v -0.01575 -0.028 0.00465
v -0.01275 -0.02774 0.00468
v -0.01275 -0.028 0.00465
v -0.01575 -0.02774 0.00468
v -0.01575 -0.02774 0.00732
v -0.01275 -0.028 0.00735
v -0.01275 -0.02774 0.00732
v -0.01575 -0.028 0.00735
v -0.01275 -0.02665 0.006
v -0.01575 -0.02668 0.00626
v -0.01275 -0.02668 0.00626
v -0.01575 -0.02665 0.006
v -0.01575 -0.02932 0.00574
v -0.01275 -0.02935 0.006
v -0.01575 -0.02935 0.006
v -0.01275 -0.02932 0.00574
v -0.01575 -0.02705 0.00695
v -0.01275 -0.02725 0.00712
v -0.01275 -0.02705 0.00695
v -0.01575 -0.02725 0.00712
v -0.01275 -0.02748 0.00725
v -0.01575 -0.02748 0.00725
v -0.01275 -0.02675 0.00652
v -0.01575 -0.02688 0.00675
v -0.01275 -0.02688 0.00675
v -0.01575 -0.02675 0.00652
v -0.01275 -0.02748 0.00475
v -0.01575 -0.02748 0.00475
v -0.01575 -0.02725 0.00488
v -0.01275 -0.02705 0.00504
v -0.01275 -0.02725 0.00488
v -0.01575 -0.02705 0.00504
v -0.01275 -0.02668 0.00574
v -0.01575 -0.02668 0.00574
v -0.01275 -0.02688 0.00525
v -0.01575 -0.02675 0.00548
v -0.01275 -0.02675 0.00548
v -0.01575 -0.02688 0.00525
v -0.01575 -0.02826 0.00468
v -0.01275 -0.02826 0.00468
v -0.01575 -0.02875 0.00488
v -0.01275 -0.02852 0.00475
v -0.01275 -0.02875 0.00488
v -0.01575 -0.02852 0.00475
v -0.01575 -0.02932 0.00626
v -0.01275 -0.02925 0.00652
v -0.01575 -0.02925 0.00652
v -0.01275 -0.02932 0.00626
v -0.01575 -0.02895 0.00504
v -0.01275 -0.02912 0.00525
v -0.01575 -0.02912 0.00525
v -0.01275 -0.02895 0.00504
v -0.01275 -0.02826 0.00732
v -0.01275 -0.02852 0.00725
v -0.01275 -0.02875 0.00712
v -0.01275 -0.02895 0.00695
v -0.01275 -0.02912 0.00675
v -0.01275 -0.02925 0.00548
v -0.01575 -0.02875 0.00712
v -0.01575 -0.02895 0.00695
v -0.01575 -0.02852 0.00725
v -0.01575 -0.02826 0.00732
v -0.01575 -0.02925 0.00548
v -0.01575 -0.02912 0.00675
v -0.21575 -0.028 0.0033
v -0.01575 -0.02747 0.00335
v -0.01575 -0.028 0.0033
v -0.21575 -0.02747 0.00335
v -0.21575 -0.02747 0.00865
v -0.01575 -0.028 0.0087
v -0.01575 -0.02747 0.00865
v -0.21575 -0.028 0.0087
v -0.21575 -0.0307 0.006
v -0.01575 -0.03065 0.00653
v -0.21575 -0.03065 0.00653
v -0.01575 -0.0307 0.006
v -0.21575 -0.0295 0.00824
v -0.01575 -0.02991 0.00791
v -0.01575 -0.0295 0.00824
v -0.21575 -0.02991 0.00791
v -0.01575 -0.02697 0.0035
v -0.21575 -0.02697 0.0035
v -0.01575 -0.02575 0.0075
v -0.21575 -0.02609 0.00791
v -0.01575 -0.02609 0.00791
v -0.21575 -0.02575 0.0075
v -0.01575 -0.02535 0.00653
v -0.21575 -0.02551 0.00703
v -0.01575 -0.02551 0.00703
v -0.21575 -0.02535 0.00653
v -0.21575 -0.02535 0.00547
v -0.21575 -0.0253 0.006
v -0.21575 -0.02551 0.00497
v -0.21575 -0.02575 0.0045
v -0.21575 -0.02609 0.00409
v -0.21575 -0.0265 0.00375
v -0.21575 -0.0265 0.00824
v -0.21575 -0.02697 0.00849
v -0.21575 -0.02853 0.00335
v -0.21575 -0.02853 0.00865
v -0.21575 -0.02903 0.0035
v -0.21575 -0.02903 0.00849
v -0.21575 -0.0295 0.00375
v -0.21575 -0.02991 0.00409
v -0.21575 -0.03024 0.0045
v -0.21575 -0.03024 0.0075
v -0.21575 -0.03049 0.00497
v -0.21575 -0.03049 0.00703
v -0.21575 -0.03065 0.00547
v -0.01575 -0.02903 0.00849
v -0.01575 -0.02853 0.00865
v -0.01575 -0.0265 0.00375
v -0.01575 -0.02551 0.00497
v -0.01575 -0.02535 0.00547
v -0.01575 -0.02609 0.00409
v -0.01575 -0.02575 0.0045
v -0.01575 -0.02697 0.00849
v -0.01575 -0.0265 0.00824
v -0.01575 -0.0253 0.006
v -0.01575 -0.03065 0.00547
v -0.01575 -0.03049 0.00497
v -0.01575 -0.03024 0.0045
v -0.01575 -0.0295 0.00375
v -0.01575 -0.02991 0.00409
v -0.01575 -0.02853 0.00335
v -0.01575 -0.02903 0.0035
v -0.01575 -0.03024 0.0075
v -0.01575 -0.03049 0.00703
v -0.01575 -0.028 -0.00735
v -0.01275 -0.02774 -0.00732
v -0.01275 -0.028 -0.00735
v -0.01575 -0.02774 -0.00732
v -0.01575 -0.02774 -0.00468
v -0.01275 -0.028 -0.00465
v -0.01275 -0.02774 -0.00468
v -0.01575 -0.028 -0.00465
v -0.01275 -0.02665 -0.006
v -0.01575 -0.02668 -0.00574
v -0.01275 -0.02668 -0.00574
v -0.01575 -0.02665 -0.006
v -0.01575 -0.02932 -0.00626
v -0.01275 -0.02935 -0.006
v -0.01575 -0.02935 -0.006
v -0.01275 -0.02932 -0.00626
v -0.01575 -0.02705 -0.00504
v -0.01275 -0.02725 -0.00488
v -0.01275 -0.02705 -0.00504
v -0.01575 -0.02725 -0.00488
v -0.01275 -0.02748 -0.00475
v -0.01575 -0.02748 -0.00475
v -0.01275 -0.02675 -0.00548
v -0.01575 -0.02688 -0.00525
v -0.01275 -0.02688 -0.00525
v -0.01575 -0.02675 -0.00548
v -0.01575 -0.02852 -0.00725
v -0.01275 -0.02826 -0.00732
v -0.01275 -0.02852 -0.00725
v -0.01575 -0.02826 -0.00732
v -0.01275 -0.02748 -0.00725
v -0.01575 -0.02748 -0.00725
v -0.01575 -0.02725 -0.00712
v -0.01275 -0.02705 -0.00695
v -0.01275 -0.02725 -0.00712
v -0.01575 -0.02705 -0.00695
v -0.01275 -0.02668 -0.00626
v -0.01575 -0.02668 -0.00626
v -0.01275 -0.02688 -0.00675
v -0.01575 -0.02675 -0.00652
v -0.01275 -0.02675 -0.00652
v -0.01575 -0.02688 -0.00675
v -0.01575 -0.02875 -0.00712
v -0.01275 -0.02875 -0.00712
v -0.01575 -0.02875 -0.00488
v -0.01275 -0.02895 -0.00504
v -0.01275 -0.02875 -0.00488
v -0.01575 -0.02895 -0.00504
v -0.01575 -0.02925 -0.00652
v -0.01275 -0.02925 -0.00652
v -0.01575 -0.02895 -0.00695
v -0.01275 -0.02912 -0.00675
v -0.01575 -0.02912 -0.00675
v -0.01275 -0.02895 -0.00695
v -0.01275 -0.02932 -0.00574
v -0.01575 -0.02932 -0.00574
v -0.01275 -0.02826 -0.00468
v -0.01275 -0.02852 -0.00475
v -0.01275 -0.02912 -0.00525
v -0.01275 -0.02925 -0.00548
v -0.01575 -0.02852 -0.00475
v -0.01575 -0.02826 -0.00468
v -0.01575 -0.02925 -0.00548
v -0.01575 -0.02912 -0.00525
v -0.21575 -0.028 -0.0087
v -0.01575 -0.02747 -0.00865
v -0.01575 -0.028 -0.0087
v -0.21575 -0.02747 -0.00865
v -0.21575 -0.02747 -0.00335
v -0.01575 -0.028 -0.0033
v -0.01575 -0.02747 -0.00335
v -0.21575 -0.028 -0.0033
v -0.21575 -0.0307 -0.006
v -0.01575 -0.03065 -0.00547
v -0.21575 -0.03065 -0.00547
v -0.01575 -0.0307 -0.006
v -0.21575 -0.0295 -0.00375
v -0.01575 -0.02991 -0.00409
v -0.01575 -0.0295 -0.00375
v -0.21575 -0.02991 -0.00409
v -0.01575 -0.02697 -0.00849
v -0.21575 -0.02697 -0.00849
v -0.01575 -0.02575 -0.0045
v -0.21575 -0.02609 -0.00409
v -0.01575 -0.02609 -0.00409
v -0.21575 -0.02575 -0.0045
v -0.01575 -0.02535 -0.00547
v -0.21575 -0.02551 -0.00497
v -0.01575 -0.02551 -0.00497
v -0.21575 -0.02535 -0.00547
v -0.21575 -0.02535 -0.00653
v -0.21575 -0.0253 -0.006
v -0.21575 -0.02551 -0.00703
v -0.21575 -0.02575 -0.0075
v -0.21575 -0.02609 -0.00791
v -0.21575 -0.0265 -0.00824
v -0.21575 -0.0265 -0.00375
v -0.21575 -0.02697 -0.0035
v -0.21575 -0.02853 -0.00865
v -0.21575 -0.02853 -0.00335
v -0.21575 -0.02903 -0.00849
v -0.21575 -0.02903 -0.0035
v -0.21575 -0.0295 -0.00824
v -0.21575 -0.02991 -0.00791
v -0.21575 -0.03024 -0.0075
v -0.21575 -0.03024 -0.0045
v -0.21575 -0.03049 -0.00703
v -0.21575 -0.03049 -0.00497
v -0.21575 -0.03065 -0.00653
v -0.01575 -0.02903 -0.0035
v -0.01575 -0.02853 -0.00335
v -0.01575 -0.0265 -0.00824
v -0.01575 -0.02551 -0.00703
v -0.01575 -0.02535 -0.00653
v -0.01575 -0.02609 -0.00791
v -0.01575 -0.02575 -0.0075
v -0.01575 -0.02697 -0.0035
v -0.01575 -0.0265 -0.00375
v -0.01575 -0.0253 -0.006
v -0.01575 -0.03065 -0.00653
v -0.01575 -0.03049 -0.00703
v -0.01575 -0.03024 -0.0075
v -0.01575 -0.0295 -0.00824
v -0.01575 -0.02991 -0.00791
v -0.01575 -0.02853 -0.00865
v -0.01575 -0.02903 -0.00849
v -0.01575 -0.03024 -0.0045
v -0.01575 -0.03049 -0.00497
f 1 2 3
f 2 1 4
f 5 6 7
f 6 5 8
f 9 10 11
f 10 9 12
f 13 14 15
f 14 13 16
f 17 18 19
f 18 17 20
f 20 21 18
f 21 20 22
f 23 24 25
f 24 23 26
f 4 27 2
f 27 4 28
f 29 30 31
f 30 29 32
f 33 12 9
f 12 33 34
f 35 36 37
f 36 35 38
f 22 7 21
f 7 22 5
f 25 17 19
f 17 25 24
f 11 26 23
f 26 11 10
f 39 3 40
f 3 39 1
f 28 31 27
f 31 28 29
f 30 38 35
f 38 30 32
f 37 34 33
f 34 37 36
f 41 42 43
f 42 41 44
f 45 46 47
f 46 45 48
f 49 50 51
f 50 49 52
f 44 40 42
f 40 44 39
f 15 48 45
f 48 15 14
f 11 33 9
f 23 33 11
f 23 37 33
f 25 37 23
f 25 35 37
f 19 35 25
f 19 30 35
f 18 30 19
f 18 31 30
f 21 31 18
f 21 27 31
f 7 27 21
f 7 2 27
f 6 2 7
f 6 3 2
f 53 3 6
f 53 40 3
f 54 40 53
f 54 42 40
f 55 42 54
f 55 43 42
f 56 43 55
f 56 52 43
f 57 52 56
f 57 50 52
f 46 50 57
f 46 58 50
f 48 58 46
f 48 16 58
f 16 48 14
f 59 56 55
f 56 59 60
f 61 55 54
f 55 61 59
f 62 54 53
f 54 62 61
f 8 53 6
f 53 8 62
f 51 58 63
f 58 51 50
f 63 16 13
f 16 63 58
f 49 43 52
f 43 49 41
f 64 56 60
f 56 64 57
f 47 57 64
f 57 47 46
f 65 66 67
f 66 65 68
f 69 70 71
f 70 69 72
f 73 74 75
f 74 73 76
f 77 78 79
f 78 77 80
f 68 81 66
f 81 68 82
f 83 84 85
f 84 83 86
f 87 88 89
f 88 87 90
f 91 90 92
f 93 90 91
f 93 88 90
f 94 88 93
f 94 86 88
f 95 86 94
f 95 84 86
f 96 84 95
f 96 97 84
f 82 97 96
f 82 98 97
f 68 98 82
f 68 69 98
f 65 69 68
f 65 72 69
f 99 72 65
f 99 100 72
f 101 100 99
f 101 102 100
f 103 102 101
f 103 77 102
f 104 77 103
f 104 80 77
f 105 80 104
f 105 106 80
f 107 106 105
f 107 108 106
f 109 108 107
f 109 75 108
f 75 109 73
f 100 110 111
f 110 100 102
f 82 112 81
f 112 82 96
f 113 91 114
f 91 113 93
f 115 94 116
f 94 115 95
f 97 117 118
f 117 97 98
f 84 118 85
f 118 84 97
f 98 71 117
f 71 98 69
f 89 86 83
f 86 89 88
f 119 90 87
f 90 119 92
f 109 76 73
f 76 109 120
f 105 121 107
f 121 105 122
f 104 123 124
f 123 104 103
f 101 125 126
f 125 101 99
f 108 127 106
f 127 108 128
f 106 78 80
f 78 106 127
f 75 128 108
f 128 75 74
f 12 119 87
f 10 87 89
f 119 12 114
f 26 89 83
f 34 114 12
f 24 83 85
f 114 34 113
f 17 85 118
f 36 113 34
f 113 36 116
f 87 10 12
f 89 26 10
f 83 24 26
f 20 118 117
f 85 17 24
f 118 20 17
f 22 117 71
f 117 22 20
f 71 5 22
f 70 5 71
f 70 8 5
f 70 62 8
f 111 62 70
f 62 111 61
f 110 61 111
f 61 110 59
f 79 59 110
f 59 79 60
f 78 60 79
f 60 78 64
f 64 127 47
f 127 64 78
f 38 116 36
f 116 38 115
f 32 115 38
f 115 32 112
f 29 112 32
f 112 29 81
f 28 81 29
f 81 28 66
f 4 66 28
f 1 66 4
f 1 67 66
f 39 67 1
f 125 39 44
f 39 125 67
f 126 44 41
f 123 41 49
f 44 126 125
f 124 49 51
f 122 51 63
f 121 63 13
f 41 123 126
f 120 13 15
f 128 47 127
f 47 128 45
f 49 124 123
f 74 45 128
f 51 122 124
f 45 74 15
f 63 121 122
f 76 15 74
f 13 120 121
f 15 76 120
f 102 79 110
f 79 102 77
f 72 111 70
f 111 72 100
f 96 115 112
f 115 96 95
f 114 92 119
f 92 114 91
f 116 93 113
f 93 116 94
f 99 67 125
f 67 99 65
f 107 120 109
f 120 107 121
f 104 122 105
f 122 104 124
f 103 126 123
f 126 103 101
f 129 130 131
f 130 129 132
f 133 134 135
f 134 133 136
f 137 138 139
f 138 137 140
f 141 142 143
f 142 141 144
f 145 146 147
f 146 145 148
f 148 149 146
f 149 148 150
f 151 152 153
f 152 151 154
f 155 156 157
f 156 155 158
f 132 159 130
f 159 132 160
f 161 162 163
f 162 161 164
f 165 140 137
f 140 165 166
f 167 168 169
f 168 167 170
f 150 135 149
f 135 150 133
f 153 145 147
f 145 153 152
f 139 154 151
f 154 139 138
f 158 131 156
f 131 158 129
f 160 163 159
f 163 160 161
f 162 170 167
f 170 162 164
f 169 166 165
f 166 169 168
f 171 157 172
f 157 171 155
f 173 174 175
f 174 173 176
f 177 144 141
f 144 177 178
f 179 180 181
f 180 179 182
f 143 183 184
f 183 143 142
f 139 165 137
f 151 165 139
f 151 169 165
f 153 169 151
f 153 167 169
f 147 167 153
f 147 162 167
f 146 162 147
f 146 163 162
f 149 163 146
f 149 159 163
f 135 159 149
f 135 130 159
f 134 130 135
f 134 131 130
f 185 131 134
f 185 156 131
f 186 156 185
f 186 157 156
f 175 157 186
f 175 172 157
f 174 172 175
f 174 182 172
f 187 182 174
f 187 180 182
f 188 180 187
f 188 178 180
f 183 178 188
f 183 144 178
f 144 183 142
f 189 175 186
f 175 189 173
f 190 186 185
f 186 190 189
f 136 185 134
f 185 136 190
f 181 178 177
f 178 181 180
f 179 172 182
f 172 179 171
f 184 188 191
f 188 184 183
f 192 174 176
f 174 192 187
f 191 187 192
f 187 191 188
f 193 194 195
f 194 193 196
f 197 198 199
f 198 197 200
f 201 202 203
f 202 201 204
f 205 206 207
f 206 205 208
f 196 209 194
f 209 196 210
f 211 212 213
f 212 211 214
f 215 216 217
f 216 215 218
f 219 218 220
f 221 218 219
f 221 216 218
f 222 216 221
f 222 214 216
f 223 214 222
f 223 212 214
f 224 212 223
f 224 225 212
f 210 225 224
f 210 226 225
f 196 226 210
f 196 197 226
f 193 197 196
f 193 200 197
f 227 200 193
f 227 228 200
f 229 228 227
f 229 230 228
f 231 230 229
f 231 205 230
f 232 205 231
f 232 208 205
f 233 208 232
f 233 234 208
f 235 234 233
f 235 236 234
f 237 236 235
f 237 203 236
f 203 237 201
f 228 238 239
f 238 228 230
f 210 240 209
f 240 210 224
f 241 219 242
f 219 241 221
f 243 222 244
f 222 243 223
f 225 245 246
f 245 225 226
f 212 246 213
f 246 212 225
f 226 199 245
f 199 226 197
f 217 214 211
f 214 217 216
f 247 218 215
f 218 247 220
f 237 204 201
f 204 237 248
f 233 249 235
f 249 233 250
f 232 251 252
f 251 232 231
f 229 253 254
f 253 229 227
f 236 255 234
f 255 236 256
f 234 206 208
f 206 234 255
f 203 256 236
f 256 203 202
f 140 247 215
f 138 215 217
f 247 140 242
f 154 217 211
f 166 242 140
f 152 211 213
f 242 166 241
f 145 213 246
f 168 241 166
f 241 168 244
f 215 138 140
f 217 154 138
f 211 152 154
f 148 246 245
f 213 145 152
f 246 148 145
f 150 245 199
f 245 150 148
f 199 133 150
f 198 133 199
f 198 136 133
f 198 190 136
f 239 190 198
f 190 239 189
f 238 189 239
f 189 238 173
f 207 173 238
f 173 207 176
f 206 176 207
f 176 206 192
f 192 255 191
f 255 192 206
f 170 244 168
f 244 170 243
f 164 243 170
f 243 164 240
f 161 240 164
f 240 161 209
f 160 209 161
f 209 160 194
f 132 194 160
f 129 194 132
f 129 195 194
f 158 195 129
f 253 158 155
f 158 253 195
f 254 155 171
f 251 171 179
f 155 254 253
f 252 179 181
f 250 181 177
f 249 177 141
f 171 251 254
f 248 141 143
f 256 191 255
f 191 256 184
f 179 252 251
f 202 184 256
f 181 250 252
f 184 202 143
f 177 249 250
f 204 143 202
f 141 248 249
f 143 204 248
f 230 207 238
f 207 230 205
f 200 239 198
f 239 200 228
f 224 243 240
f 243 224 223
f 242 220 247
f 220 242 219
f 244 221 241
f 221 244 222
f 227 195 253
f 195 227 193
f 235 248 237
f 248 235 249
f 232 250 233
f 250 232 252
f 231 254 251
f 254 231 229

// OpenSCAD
n = 128;
m = 32;
clearance = 0.0001;
delta = 0.000001;

HoleInR = 0.00125 + clearance;
HoleOutR = 2 * HoleInR;
HoleInW = 0.003;
HoleOutW = 0.2;


x3 = -0.01425;
y3 = -0.028;
z3 = 0.006;
translate([x3, y3, z3]){
    rotate(a = 90, v = [0, 1, 0]) {
        cylinder(h = HoleInW, r1 = HoleInR, r2 = HoleInR, center     = true, $fn = m);
    }
}

translate([x3 - 0.5 * (HoleInW + HoleOutW) + delta, y3, z3]){
    rotate(a = 90, v = [0, 1, 0]) {
        cylinder(h = HoleOutW, r1 = HoleOutR, r2 = HoleOutR, center = true, $fn = m);   
    }  
}

x4 = -0.01425;
y4 = -0.028;
z4 = -0.006;
translate([x4, y4, z4]){
    rotate(a = 90, v = [0, 1, 0]) {
        cylinder(h = HoleInW, r1 = HoleInR, r2 = HoleInR, center     = true, $fn = m);
    }
}

translate([x4 - 0.5 * (HoleInW + HoleOutW) + delta, y4, z4]){
    rotate(a = 90, v = [0, 1, 0]) {
        cylinder(h = HoleOutW, r1 = HoleOutR, r2 = HoleOutR, center = true, $fn = m);   
    }  
}
